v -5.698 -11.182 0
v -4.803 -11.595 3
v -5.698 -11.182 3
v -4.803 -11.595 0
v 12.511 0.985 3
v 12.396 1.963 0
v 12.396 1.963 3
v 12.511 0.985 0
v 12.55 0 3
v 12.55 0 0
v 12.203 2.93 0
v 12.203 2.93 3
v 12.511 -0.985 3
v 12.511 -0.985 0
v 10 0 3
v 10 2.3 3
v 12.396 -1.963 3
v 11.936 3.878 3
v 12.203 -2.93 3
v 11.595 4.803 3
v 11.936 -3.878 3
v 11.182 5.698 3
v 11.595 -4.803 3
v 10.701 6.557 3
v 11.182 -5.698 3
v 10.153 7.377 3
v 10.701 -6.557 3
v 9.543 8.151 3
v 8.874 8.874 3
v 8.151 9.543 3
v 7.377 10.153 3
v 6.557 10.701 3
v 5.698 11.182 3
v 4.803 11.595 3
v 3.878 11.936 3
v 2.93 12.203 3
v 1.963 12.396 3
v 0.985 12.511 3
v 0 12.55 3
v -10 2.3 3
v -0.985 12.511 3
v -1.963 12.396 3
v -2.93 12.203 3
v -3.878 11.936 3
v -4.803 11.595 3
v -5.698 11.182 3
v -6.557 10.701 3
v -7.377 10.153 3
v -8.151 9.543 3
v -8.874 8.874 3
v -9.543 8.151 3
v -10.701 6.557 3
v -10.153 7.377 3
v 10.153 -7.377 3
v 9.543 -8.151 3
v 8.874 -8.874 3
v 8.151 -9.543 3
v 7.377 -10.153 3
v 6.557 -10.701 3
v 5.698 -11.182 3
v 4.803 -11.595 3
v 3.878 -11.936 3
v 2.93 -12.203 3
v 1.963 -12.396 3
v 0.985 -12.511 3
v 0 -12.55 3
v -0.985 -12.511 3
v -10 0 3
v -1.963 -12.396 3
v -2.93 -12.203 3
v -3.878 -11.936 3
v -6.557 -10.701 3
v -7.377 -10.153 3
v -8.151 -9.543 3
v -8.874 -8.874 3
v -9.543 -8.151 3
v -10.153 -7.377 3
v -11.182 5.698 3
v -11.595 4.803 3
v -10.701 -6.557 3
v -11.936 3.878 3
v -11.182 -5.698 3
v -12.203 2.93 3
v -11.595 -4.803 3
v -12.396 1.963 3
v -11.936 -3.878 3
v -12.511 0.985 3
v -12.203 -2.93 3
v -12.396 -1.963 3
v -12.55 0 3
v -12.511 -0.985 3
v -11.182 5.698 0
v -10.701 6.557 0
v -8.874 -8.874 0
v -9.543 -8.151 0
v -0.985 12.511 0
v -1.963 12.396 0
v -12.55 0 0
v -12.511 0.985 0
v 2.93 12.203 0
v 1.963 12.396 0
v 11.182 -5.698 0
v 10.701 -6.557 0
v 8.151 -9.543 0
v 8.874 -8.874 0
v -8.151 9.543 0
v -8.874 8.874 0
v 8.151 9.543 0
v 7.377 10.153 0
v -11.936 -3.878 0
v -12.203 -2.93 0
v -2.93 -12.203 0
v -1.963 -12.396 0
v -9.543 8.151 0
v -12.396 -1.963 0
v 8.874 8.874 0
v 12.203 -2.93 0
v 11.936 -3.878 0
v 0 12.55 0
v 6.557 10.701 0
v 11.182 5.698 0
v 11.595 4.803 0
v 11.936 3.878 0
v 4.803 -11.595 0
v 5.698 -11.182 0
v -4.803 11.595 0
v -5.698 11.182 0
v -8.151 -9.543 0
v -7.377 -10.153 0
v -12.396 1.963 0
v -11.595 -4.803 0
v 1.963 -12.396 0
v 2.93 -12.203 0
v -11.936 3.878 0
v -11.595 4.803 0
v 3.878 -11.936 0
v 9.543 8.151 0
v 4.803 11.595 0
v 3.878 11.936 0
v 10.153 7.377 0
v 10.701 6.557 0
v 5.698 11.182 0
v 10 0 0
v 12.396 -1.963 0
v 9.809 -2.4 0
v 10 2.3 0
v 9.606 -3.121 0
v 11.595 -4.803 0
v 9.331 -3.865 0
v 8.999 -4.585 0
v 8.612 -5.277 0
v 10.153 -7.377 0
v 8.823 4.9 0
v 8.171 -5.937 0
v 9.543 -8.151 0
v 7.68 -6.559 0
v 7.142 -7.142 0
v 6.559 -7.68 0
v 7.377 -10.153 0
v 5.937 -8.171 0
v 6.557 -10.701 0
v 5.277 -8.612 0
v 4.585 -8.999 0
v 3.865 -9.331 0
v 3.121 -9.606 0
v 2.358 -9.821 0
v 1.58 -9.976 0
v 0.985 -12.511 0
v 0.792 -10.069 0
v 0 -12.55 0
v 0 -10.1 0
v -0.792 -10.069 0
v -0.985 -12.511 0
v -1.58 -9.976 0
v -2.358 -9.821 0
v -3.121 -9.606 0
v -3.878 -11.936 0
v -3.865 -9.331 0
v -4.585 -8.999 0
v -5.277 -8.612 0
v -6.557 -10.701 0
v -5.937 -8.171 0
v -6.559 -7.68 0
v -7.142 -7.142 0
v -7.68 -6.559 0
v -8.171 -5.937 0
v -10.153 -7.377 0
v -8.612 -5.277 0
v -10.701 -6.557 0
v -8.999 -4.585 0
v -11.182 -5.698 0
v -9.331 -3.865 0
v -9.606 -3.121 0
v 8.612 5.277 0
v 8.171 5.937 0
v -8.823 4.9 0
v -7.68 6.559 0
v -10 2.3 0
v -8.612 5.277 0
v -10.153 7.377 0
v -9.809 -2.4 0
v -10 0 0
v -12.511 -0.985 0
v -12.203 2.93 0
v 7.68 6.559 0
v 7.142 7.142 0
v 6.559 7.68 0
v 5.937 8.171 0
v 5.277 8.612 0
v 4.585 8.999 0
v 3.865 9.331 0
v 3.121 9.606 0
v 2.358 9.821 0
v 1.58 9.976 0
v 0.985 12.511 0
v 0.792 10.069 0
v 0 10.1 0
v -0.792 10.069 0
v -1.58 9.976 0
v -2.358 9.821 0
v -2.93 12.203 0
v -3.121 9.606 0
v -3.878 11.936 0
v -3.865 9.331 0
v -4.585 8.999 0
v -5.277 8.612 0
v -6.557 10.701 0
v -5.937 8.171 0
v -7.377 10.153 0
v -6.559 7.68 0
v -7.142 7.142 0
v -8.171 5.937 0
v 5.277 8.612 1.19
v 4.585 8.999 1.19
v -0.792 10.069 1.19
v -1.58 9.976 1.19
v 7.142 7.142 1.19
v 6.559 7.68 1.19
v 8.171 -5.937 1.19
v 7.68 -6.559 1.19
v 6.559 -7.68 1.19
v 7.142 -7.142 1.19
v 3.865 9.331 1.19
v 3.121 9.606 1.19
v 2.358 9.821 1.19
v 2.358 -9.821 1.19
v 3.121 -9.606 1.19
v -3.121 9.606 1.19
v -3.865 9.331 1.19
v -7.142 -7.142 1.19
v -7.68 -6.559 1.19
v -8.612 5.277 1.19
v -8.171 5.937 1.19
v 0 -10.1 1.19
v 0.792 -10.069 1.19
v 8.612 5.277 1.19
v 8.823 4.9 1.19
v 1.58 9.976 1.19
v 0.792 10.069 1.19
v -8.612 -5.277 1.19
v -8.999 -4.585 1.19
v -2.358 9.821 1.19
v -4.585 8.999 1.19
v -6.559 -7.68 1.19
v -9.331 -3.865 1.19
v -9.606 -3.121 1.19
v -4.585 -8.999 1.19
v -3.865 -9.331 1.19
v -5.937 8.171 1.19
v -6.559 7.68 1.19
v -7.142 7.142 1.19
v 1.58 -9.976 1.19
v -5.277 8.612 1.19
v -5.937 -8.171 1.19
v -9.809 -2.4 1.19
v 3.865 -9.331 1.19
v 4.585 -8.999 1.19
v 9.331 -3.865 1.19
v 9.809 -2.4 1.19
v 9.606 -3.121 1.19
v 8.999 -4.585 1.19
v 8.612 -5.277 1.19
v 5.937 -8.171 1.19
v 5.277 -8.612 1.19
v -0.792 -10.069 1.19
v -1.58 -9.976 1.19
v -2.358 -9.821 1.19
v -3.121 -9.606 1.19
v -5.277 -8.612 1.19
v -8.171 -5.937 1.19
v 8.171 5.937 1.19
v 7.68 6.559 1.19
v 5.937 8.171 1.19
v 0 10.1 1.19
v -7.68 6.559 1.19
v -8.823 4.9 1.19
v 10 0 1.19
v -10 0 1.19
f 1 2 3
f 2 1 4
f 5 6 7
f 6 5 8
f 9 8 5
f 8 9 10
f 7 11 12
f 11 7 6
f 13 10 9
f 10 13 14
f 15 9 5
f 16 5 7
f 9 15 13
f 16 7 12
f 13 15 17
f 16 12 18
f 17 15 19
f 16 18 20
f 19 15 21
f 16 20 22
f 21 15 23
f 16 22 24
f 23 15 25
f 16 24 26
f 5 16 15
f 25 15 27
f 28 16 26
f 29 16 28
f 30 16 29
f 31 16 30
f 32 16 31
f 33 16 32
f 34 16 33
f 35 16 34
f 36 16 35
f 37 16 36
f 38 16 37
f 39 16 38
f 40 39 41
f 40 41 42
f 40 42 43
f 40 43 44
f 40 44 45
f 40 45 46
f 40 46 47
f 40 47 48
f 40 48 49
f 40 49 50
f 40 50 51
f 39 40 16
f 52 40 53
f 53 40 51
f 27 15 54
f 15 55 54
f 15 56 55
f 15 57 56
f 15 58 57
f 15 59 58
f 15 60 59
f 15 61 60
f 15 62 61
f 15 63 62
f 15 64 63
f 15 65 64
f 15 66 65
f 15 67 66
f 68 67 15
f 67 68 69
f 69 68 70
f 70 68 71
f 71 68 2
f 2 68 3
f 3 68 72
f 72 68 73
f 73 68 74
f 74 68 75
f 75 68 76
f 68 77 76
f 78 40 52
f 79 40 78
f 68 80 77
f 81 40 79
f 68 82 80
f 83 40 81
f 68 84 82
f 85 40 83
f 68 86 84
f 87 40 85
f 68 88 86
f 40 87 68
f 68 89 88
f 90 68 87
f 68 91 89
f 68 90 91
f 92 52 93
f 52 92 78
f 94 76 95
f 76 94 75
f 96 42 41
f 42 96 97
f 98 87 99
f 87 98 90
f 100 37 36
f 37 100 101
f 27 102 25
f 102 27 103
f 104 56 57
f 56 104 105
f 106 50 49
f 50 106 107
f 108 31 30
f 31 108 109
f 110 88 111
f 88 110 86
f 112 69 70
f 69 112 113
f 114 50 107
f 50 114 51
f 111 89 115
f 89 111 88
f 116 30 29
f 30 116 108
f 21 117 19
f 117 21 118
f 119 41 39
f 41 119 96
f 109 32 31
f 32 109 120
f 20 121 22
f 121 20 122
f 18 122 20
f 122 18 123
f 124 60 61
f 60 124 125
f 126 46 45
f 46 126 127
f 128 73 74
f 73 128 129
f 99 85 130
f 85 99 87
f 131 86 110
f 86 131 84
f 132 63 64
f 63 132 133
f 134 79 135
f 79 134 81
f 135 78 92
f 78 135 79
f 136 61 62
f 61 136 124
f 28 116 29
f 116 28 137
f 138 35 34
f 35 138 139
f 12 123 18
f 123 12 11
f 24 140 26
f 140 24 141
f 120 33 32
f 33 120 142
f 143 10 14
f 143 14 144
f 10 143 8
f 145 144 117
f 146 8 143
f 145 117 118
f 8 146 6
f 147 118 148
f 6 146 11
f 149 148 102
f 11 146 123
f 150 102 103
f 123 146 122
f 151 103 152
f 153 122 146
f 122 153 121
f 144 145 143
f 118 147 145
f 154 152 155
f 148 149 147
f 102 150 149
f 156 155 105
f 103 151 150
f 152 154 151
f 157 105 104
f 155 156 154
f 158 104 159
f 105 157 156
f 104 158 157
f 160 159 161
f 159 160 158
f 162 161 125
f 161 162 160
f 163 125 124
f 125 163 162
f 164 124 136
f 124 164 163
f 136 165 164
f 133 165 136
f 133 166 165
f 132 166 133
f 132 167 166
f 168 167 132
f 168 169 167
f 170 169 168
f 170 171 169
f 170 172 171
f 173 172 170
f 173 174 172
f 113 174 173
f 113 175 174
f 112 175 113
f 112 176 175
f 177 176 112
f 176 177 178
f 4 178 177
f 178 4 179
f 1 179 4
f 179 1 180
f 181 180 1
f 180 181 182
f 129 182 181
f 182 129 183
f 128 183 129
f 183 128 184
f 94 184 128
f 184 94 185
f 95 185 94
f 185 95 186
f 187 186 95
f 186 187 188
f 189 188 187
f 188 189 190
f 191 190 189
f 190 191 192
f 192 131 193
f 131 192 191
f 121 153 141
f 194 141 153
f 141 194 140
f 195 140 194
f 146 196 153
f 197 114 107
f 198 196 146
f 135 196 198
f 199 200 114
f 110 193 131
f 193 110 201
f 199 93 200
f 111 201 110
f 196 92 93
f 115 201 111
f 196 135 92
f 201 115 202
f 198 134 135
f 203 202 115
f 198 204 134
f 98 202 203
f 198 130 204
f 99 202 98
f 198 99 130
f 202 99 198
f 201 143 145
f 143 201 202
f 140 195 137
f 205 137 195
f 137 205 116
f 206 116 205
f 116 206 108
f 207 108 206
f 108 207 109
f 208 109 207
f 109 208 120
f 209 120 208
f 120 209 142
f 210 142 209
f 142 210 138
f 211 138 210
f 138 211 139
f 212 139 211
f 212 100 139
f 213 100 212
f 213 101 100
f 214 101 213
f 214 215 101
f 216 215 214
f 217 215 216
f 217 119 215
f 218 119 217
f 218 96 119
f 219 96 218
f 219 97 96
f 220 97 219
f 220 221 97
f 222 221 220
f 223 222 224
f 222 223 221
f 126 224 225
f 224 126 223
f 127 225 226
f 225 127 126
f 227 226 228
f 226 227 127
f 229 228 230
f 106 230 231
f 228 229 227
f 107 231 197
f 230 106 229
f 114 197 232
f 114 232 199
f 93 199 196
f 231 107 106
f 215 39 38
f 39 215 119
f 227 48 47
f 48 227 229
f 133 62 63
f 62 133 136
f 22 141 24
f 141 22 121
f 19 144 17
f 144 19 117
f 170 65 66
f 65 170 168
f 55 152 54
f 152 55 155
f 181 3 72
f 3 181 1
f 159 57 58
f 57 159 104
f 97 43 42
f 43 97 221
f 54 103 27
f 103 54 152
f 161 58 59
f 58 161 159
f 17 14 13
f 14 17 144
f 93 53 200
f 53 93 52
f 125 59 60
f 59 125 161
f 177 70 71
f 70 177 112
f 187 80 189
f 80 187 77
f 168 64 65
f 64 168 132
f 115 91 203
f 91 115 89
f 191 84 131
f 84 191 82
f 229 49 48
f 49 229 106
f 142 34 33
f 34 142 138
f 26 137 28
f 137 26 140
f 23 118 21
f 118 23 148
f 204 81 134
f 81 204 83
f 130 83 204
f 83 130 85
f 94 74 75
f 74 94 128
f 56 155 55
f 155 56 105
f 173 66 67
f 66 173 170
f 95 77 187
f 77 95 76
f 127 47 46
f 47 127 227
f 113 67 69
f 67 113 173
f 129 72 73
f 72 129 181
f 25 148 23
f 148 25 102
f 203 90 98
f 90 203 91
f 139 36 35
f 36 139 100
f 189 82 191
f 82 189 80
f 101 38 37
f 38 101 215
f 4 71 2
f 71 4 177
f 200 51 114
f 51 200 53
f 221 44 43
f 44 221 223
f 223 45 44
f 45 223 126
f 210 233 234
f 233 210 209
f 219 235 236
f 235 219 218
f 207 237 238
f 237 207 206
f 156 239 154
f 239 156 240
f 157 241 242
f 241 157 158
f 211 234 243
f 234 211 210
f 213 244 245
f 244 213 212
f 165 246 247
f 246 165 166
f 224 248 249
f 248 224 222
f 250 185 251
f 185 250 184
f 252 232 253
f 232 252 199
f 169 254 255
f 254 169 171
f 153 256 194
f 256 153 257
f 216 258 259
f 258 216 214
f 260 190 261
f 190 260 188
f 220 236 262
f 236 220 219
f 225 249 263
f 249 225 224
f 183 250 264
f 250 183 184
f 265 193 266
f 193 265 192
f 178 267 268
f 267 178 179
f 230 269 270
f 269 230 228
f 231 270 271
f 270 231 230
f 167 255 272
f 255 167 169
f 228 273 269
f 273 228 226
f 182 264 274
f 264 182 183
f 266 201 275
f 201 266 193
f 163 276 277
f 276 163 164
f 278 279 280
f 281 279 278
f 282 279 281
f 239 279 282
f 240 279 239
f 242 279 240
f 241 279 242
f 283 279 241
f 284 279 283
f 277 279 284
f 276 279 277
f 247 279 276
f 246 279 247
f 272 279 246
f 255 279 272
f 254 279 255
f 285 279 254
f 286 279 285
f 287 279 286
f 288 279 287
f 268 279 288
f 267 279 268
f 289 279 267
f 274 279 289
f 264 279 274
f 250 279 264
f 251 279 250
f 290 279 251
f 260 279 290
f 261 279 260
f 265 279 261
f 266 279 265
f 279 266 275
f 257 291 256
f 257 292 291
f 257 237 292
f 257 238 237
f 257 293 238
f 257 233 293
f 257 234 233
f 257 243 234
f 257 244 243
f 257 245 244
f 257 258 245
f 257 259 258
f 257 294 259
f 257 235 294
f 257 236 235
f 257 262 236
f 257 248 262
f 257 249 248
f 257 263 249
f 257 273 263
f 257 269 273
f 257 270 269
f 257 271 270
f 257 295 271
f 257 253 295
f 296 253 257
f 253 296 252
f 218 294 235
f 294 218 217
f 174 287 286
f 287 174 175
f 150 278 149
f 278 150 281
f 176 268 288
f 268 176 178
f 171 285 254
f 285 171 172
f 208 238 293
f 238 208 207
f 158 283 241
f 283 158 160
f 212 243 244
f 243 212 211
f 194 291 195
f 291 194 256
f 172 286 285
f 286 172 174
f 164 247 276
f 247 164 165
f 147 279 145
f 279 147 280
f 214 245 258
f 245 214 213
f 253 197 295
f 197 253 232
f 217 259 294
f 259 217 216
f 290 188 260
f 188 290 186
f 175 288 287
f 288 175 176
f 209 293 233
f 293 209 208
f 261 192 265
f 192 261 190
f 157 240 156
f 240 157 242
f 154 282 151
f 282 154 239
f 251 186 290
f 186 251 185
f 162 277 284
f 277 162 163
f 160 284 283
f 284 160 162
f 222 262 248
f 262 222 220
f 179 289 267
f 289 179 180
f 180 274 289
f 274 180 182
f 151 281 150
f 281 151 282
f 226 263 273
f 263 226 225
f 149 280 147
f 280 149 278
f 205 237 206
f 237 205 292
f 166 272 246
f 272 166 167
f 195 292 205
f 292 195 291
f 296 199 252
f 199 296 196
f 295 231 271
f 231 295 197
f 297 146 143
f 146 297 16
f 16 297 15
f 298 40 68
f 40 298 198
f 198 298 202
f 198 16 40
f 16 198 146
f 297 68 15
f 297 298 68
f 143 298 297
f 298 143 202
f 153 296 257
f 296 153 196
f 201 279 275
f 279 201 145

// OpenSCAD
/* dimensions: 25mm x 3mm
 * slot: 20mm x 2.5mm wide x 2mm deep
 */

$fn=80;

difference() {
   cylinder(d=25.1,h=3);
   translate([0,0,-0.01]) cylinder(d=25-4.8,h=1.2);
   translate([-10,0,-0.01]) cube([20,2.3,5]);
}

difference() {
   translate([-10.5,-2.4,0.0]) cube([21,2.5+4.8,3]);
   translate([-10,0,-0.01]) cube([20,2.3,5]);
}
